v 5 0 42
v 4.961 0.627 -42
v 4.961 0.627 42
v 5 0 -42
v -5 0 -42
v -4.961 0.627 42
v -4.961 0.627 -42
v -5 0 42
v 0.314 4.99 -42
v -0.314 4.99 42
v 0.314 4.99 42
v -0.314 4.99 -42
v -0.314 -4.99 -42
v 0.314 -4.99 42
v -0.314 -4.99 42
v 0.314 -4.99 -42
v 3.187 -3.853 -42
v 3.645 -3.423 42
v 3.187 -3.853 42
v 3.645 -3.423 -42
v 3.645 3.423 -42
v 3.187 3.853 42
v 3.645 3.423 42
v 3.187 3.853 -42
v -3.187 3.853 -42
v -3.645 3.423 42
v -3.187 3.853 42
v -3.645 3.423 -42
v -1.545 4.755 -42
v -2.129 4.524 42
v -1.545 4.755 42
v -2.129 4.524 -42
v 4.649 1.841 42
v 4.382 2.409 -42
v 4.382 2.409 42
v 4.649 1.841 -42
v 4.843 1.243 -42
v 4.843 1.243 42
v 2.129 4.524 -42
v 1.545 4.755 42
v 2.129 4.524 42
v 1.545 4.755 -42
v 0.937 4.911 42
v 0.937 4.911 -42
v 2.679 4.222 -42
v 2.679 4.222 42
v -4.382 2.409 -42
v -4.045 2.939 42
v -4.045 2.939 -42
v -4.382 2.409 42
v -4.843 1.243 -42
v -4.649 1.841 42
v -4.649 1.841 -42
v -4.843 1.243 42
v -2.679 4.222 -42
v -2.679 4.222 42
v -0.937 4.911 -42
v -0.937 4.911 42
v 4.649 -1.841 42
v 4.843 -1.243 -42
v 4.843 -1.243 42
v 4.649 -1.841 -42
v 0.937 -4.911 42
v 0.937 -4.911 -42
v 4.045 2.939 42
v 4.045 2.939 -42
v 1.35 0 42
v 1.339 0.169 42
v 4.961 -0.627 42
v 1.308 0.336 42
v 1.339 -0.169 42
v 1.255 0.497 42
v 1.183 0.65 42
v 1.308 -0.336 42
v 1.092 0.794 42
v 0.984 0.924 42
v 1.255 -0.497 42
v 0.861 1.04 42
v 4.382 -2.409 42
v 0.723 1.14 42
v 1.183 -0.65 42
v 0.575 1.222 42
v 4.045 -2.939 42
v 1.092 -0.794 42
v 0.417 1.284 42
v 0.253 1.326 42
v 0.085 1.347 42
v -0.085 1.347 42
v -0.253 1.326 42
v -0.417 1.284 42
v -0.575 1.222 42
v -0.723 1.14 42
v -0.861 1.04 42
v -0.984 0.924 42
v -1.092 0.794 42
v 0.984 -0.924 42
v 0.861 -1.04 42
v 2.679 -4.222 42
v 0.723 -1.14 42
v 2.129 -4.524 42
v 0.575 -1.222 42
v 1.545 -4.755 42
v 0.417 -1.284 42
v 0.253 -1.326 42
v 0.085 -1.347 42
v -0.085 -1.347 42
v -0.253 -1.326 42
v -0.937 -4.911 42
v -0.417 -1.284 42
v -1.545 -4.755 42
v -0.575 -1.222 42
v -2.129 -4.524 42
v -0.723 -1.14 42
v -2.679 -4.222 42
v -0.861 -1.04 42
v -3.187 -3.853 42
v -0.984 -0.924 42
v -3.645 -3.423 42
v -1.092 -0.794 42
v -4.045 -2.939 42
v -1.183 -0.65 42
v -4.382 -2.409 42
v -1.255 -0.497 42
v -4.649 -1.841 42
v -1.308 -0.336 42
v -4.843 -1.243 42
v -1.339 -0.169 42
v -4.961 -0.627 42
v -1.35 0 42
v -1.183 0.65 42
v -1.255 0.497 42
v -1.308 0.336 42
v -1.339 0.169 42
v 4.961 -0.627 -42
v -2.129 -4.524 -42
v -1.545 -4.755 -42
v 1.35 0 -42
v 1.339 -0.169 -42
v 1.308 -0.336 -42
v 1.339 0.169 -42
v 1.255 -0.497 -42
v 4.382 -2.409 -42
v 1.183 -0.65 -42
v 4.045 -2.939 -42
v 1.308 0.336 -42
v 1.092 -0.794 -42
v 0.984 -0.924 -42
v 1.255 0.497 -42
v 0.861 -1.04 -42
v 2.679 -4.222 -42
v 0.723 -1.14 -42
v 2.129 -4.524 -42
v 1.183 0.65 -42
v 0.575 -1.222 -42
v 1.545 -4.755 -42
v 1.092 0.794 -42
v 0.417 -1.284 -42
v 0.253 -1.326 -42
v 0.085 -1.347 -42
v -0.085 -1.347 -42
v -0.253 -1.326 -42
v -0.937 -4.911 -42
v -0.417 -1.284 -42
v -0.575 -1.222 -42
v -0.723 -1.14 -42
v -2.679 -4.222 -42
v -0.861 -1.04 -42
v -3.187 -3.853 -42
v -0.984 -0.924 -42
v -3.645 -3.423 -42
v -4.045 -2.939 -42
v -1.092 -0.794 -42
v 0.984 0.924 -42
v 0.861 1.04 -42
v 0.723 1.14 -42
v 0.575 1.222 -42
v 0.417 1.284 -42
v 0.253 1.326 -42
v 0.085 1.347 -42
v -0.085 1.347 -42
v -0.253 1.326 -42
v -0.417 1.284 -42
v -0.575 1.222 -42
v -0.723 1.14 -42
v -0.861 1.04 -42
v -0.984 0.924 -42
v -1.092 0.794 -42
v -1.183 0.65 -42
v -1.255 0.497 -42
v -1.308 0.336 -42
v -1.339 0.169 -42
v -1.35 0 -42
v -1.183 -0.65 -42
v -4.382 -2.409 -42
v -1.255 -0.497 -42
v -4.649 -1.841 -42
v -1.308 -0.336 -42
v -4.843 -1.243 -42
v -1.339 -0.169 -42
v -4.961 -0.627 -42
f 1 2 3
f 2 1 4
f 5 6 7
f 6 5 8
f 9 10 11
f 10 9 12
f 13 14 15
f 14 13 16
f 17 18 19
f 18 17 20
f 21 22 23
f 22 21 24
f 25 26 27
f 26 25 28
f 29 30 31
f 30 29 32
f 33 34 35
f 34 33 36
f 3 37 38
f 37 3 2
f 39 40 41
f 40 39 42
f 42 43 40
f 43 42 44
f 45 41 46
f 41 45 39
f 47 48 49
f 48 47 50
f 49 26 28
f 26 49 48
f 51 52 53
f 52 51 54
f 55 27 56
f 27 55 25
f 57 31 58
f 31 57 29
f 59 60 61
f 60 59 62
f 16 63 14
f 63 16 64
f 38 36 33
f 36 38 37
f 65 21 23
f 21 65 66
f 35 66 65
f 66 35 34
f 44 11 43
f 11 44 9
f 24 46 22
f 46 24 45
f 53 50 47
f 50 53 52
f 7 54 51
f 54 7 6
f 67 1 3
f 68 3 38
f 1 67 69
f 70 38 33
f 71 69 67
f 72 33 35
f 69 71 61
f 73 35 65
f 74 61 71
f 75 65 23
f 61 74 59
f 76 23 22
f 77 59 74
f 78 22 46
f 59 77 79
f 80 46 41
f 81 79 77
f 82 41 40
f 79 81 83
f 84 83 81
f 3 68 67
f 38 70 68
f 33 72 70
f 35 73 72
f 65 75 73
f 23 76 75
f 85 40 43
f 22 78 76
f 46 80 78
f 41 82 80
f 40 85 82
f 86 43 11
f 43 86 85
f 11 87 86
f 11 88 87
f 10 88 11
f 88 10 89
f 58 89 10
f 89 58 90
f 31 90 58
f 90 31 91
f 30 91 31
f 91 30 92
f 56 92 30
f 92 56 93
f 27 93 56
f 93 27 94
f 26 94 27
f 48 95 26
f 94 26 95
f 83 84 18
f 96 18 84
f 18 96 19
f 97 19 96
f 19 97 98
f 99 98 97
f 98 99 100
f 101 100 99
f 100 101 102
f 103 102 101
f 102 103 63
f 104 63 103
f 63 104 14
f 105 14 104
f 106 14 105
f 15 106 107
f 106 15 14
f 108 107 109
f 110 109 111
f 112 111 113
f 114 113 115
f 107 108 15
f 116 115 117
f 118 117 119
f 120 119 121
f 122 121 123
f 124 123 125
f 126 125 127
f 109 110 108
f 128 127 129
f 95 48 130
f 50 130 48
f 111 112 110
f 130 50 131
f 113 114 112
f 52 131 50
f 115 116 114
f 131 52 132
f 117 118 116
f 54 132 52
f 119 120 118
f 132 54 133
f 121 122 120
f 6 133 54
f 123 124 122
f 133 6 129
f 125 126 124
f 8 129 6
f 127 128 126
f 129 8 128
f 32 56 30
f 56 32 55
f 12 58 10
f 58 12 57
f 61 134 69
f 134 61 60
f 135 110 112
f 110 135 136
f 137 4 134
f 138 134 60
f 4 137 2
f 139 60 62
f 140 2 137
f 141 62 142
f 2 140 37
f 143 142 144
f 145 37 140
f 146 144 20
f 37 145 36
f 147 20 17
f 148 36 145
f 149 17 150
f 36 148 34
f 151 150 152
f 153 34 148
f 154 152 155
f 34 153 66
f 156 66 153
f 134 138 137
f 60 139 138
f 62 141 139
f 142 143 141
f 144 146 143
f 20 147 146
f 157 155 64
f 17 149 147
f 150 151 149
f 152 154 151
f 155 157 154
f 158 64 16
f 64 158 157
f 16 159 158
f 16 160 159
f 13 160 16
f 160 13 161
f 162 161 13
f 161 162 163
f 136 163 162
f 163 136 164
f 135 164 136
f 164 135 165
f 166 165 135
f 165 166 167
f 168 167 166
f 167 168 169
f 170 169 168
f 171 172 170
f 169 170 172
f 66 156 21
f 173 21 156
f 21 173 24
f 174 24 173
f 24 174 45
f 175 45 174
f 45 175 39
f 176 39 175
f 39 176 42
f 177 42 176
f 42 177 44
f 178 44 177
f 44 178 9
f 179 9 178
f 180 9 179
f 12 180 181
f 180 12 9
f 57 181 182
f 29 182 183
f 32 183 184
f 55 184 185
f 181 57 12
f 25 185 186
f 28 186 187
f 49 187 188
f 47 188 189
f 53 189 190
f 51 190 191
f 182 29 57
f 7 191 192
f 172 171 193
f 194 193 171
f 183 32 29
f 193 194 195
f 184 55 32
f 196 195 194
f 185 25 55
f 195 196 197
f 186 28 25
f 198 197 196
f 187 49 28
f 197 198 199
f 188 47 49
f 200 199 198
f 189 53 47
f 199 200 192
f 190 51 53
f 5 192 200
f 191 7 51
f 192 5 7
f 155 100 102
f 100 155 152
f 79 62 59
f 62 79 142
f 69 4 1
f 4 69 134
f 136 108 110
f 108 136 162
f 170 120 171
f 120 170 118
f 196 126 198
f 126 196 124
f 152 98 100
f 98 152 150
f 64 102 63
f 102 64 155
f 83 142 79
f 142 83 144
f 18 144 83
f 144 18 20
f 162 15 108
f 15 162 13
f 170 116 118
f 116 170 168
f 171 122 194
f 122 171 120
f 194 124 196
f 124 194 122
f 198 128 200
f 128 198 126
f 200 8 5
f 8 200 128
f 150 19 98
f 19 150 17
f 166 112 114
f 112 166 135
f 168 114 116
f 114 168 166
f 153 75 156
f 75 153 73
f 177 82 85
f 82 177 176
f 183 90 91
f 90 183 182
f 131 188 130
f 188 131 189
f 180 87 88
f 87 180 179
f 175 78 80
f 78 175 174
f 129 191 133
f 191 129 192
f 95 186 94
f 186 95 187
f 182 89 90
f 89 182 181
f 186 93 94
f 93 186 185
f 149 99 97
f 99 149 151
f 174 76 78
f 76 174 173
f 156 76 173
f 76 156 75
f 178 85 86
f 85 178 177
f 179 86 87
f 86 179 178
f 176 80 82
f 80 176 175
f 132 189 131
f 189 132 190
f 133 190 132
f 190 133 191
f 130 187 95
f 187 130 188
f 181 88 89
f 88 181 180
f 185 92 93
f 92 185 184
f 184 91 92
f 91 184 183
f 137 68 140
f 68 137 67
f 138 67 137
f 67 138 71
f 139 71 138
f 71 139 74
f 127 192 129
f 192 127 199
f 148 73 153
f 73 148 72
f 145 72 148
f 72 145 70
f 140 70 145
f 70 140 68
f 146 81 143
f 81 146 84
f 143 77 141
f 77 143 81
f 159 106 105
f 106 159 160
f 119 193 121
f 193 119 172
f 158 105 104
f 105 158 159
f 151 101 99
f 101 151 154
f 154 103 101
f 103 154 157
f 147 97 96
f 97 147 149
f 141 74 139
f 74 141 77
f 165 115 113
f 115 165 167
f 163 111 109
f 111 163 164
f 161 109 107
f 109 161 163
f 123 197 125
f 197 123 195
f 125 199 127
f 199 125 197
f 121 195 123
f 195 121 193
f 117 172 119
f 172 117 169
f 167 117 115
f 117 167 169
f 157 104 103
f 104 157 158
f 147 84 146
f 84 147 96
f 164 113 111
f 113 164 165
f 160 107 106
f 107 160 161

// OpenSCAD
$fn = 50;


difference() {
	union() {
		translate(v = [0, 0, -42.0000000000]) {
			cylinder(h = 84, r = 5.0000000000);
		}
	}
	union() {
		translate(v = [0, 0, -100.0000000000]) {
			cylinder(h = 200, r = 1.3500000000);
		}
	}
}
